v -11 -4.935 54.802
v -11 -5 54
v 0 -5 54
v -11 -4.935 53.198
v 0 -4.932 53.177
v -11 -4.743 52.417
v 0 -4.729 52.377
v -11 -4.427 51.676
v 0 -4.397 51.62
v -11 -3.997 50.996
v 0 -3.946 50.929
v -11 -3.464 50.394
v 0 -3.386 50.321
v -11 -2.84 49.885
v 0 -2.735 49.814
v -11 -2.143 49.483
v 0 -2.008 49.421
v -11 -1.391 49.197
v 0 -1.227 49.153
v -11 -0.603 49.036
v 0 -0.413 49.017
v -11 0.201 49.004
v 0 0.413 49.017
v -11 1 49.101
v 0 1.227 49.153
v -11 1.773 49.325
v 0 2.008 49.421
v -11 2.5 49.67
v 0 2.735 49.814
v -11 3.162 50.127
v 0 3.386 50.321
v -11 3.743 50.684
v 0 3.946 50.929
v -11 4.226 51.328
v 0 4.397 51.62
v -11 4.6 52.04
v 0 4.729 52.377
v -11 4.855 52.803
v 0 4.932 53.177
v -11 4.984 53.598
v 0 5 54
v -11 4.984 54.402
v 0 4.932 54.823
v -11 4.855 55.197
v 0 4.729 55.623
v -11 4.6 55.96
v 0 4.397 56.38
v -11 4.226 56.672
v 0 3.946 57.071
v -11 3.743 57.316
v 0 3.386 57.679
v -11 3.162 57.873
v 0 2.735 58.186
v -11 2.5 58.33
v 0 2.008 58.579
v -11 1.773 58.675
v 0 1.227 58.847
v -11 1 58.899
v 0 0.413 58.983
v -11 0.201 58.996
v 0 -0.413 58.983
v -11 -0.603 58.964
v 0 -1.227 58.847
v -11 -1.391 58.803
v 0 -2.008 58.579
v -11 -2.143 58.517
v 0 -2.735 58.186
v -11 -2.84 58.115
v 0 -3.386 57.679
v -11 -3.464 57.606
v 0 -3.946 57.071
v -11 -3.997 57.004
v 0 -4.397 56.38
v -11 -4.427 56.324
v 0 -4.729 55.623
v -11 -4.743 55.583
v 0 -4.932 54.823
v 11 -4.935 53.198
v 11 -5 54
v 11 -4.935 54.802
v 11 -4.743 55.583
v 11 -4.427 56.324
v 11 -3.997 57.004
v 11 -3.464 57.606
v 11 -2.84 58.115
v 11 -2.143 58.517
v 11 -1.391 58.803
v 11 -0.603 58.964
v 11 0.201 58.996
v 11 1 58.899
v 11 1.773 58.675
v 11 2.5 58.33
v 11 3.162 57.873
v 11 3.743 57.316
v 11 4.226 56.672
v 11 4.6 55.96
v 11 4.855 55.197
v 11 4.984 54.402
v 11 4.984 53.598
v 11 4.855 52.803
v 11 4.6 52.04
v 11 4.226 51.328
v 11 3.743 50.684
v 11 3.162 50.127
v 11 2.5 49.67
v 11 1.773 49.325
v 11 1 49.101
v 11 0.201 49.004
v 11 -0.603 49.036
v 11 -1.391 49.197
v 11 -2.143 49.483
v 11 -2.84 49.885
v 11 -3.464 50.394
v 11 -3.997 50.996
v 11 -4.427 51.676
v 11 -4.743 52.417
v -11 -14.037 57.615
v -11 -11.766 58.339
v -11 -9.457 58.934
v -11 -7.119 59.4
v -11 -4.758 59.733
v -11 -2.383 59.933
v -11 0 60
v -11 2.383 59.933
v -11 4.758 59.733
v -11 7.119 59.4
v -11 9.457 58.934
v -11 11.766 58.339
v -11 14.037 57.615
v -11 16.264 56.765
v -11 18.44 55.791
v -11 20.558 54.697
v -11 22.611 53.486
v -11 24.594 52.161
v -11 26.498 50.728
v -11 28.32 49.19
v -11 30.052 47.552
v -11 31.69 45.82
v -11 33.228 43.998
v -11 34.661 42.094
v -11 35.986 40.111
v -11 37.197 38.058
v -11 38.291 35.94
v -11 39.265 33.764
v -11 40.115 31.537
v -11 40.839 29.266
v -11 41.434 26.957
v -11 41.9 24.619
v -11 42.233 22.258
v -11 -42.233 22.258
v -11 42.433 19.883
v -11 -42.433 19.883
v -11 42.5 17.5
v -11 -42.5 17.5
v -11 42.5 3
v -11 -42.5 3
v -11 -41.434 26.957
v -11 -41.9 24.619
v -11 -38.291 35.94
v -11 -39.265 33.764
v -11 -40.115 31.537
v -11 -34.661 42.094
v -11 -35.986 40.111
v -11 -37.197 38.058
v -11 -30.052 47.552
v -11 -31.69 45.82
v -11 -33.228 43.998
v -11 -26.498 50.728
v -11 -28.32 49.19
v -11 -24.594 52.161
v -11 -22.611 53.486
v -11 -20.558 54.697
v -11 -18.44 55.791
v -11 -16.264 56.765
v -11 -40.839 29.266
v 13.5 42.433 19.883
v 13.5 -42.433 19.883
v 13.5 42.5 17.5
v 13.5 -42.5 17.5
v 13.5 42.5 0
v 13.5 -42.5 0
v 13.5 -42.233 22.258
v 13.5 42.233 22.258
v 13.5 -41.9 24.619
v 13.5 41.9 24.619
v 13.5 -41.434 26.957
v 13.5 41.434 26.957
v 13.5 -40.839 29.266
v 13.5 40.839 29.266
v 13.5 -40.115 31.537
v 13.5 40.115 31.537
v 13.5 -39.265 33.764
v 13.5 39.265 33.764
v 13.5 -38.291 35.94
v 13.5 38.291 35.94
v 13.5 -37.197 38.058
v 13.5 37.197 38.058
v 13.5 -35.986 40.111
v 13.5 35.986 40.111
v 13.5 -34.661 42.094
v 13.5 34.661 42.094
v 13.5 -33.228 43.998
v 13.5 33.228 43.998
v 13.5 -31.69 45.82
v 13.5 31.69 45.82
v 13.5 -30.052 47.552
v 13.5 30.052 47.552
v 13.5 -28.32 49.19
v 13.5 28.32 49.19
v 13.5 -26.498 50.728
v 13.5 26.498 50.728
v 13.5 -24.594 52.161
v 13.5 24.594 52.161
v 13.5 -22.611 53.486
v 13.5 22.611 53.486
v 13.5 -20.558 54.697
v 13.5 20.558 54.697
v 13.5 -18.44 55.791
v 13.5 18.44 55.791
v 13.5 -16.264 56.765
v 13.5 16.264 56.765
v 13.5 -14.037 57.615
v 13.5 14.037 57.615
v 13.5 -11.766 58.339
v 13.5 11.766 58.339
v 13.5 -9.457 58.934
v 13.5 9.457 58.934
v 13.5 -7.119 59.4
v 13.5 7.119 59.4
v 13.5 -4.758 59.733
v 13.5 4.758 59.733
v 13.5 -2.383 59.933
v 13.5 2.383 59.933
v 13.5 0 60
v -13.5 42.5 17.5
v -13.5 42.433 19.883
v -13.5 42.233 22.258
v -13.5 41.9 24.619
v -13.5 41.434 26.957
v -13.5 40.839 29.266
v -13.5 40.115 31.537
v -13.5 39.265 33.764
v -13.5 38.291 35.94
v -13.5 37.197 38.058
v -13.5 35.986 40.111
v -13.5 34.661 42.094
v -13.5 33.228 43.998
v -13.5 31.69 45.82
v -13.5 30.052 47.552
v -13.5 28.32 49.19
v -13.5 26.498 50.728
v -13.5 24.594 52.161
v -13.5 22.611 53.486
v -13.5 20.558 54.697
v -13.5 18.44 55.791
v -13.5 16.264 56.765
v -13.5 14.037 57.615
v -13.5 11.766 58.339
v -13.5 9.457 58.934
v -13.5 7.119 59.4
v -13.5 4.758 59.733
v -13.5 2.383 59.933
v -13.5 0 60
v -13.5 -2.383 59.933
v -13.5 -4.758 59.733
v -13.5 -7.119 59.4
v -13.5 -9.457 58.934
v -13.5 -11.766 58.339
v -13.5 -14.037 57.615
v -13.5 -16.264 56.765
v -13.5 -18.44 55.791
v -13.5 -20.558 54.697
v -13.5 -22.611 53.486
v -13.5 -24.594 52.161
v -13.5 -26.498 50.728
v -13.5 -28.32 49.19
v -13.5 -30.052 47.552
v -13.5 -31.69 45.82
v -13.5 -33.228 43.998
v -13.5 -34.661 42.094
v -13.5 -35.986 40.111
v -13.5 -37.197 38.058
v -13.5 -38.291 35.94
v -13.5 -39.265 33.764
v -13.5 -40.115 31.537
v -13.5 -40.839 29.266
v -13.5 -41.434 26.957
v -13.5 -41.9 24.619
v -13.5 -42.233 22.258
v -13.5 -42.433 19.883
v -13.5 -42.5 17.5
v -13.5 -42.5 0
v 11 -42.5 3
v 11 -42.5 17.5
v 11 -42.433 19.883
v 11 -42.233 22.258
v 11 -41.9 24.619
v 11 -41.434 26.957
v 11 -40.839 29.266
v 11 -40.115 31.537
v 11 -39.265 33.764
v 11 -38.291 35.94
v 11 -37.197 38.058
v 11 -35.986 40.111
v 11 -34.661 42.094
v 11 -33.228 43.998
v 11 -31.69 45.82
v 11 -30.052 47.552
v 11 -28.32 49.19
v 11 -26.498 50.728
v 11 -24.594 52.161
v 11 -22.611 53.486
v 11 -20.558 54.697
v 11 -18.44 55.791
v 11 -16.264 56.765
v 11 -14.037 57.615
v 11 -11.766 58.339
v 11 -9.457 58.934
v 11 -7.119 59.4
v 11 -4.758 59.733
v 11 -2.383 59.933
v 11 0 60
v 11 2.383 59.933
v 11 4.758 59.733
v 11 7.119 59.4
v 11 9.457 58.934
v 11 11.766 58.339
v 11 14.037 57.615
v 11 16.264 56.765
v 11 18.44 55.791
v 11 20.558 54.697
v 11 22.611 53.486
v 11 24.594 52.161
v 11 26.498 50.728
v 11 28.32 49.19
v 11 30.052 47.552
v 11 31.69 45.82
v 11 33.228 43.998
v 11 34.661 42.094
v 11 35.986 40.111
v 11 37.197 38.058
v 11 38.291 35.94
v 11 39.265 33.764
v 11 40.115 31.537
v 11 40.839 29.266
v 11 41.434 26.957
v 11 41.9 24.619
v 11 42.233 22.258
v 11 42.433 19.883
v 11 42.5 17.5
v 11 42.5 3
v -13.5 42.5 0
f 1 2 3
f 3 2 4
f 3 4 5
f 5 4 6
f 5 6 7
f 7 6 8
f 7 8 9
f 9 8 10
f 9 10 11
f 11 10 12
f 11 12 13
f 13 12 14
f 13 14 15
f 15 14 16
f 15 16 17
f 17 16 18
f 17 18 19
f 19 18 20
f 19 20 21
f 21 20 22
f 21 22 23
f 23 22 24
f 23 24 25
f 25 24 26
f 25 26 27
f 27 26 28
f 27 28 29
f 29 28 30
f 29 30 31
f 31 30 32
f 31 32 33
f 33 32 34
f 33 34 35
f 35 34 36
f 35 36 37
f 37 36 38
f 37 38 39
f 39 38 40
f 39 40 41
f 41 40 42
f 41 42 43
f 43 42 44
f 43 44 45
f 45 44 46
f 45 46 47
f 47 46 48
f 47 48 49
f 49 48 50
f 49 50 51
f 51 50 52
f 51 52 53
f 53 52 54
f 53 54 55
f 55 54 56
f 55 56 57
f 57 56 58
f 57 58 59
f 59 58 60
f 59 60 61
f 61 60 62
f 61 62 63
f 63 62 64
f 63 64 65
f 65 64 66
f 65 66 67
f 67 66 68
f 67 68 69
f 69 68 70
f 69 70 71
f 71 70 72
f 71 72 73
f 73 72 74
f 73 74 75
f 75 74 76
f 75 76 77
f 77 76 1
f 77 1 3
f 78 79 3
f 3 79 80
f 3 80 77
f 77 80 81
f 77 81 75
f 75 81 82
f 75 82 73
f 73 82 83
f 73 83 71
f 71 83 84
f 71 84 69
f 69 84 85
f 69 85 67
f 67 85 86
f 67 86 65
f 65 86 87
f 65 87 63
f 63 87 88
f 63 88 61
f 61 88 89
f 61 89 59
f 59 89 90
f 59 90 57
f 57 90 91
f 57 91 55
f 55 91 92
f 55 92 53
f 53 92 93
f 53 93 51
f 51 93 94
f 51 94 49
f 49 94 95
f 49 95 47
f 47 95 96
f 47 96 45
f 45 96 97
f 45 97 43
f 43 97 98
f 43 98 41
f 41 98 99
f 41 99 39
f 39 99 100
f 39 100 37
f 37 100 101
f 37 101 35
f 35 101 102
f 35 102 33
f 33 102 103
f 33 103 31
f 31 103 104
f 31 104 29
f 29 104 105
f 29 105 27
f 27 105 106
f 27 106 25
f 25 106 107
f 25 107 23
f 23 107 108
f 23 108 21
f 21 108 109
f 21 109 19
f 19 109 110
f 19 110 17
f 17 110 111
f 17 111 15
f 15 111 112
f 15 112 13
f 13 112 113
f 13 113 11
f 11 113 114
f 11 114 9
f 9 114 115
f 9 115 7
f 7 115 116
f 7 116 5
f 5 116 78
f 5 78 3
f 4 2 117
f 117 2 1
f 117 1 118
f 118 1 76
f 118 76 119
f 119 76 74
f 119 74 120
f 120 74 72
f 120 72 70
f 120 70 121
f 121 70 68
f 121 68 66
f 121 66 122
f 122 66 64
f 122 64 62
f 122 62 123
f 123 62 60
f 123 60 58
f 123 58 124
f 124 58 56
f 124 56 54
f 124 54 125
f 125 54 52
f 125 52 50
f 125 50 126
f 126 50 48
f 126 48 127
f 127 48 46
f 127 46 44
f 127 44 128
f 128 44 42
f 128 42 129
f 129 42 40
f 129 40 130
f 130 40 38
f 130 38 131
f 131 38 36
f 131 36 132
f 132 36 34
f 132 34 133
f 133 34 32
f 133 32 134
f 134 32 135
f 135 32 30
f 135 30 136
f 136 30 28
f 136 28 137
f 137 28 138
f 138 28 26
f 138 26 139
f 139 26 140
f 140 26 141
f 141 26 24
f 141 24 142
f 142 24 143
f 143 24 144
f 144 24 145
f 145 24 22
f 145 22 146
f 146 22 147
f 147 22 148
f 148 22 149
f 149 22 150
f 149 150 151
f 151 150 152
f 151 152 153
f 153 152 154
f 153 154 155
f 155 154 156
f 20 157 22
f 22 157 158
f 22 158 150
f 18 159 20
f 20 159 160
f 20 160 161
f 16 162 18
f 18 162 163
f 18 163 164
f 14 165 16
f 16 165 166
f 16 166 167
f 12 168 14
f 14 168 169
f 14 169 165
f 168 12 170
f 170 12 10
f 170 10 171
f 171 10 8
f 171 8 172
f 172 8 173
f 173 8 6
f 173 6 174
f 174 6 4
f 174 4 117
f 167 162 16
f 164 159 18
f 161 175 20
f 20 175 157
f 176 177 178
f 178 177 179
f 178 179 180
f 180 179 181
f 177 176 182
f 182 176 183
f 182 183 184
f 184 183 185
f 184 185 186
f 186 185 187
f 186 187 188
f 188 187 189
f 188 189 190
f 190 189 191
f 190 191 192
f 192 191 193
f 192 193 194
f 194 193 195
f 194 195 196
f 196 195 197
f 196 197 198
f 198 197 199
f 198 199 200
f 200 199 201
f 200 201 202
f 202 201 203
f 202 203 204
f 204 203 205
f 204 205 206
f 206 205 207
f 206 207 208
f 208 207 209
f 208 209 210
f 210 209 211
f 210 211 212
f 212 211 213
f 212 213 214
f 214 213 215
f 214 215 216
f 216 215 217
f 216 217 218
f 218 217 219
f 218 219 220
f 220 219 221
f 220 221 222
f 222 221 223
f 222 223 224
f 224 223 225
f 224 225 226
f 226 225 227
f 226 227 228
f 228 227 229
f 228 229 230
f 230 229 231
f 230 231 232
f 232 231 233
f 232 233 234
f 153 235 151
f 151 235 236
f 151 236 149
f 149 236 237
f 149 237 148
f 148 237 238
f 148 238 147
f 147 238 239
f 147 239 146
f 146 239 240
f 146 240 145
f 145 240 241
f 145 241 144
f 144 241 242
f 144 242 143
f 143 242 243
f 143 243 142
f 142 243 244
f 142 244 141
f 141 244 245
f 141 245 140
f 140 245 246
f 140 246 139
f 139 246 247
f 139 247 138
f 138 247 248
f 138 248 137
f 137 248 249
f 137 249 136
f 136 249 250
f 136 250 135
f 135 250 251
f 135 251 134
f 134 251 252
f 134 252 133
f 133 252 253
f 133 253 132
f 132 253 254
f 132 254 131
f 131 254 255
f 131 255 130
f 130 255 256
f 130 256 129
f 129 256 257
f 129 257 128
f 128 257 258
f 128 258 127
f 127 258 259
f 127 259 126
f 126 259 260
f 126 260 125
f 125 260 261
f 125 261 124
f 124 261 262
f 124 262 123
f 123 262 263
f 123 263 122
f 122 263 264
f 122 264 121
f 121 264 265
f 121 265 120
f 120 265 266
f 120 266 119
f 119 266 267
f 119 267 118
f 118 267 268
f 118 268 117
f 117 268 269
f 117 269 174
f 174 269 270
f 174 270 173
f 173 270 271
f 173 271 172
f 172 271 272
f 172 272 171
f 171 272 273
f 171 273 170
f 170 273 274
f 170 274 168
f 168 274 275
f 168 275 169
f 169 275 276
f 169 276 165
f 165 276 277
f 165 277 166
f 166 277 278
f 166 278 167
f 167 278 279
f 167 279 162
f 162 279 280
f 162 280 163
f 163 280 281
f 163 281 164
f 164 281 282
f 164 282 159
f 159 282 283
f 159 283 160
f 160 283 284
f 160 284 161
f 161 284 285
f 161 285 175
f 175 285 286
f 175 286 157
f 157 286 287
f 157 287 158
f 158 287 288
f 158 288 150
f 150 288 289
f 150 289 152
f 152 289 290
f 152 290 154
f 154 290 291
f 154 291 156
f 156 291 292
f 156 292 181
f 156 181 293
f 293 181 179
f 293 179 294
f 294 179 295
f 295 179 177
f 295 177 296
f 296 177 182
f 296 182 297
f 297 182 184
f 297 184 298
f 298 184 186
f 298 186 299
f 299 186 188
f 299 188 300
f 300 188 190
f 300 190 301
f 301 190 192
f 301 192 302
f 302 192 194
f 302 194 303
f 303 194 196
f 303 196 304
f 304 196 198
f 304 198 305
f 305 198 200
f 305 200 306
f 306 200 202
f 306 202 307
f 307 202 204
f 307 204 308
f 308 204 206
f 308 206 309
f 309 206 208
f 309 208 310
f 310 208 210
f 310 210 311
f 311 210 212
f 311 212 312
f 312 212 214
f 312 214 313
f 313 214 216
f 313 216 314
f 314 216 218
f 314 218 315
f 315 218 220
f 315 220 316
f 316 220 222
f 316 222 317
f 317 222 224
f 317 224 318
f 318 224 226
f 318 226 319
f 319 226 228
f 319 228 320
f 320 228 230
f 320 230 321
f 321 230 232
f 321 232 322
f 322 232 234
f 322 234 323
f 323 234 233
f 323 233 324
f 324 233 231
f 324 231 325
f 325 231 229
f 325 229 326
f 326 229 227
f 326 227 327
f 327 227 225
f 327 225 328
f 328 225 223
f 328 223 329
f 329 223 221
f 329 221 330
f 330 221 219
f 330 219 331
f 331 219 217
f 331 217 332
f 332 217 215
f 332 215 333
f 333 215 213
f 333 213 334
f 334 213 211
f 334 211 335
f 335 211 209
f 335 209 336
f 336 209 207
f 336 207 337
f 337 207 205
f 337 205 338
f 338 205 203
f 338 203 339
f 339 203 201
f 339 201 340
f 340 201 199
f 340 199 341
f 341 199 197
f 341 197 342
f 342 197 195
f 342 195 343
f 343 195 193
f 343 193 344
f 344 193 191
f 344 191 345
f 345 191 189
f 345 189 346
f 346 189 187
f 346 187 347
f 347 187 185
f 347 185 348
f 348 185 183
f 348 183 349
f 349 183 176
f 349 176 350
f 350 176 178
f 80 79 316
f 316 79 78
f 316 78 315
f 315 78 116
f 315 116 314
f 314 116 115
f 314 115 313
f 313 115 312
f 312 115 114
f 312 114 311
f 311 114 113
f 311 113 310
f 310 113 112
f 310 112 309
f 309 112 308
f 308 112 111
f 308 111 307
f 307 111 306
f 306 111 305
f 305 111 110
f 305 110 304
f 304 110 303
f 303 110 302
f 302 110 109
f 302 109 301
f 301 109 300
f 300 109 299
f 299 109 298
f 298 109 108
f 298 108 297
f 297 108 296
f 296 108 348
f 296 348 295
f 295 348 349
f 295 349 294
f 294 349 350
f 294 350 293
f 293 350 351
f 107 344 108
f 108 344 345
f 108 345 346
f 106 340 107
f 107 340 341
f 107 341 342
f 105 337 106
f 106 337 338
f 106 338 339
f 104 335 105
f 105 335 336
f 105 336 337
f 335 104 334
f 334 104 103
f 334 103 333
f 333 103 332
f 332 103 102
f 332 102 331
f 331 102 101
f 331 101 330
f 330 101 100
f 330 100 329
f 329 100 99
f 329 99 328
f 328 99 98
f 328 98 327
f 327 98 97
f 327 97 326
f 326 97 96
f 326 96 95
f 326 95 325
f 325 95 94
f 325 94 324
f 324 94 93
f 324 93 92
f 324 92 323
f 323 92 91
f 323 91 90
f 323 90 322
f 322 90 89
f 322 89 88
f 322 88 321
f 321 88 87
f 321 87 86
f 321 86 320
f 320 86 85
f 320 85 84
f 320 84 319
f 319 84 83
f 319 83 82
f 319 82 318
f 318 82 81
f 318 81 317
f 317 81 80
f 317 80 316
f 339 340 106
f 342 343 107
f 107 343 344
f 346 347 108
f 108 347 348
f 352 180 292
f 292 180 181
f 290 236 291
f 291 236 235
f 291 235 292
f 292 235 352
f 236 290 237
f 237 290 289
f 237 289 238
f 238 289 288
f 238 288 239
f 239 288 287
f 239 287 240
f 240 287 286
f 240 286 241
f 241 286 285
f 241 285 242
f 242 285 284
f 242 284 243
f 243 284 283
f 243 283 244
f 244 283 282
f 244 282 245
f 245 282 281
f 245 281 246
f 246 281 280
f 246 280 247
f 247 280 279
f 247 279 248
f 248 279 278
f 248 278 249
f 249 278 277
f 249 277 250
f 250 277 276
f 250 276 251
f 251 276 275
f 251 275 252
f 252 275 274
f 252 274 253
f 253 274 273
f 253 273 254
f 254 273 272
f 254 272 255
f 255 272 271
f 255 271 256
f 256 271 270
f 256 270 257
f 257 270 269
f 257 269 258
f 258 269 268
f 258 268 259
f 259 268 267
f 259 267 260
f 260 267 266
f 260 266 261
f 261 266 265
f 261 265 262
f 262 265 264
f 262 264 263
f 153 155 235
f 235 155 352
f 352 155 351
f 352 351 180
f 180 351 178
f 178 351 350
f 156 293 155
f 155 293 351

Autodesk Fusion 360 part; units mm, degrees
sketch "Sketch1" plane through (0, 0, 0) normal (0, 0, 1) x (1, 0, 0)
  line L0 (11, -40) -> (-11, -40)
  line L1 (-11, -42.5) -> (-11, 42.5)
  line L2 (-11, 40) -> (11, 40)
  line L3 (11, 42.5) -> (11, -42.5)
  line L4 (-13.5, -42.5) -> (-13.5, 42.5)
  line L5 (-13.5, 42.5) -> (13.5, 42.5)
  line L6 (13.5, 42.5) -> (13.5, -42.5)
  line L7 (13.5, -42.5) -> (-13.5, -42.5)
  dimension "d1" = 22
  dimension "d2" = 80
extrude "Extrude1" add sketch "Sketch1" along normal blind 3
extrude "Extrude2" add sketch "Sketch1" along normal blind 60 contours L3 L5 L6 L7 | L1 L4 L5 L7
fillet "Fillet1" radius 42.5 4 edges at (12.25, -42.5, 60) (-12.25, -42.5, 60) (12.25, 42.5, 60) (-12.25, 42.5, 60)
sketch "Sketch2" plane through (13.5, 0, 0) normal (1, 0, 0) x (0, 1, 0)
  arc A0 (42.5, 17.5) -> (-42.5, 17.5) centre (0, 17.5) ccw
  line L0 (-42.5, 17.5) -> (-42.5, 0)
  line L1 (-42.5, 0) -> (42.5, 0)
  line L2 (42.5, 0) -> (42.5, 17.5)
  circle A1 centre (0, 54) radius 5
  dimension "d10" = 10
extrude "Extrude3" add sketch "Sketch2" against normal blind 27 contours A1
